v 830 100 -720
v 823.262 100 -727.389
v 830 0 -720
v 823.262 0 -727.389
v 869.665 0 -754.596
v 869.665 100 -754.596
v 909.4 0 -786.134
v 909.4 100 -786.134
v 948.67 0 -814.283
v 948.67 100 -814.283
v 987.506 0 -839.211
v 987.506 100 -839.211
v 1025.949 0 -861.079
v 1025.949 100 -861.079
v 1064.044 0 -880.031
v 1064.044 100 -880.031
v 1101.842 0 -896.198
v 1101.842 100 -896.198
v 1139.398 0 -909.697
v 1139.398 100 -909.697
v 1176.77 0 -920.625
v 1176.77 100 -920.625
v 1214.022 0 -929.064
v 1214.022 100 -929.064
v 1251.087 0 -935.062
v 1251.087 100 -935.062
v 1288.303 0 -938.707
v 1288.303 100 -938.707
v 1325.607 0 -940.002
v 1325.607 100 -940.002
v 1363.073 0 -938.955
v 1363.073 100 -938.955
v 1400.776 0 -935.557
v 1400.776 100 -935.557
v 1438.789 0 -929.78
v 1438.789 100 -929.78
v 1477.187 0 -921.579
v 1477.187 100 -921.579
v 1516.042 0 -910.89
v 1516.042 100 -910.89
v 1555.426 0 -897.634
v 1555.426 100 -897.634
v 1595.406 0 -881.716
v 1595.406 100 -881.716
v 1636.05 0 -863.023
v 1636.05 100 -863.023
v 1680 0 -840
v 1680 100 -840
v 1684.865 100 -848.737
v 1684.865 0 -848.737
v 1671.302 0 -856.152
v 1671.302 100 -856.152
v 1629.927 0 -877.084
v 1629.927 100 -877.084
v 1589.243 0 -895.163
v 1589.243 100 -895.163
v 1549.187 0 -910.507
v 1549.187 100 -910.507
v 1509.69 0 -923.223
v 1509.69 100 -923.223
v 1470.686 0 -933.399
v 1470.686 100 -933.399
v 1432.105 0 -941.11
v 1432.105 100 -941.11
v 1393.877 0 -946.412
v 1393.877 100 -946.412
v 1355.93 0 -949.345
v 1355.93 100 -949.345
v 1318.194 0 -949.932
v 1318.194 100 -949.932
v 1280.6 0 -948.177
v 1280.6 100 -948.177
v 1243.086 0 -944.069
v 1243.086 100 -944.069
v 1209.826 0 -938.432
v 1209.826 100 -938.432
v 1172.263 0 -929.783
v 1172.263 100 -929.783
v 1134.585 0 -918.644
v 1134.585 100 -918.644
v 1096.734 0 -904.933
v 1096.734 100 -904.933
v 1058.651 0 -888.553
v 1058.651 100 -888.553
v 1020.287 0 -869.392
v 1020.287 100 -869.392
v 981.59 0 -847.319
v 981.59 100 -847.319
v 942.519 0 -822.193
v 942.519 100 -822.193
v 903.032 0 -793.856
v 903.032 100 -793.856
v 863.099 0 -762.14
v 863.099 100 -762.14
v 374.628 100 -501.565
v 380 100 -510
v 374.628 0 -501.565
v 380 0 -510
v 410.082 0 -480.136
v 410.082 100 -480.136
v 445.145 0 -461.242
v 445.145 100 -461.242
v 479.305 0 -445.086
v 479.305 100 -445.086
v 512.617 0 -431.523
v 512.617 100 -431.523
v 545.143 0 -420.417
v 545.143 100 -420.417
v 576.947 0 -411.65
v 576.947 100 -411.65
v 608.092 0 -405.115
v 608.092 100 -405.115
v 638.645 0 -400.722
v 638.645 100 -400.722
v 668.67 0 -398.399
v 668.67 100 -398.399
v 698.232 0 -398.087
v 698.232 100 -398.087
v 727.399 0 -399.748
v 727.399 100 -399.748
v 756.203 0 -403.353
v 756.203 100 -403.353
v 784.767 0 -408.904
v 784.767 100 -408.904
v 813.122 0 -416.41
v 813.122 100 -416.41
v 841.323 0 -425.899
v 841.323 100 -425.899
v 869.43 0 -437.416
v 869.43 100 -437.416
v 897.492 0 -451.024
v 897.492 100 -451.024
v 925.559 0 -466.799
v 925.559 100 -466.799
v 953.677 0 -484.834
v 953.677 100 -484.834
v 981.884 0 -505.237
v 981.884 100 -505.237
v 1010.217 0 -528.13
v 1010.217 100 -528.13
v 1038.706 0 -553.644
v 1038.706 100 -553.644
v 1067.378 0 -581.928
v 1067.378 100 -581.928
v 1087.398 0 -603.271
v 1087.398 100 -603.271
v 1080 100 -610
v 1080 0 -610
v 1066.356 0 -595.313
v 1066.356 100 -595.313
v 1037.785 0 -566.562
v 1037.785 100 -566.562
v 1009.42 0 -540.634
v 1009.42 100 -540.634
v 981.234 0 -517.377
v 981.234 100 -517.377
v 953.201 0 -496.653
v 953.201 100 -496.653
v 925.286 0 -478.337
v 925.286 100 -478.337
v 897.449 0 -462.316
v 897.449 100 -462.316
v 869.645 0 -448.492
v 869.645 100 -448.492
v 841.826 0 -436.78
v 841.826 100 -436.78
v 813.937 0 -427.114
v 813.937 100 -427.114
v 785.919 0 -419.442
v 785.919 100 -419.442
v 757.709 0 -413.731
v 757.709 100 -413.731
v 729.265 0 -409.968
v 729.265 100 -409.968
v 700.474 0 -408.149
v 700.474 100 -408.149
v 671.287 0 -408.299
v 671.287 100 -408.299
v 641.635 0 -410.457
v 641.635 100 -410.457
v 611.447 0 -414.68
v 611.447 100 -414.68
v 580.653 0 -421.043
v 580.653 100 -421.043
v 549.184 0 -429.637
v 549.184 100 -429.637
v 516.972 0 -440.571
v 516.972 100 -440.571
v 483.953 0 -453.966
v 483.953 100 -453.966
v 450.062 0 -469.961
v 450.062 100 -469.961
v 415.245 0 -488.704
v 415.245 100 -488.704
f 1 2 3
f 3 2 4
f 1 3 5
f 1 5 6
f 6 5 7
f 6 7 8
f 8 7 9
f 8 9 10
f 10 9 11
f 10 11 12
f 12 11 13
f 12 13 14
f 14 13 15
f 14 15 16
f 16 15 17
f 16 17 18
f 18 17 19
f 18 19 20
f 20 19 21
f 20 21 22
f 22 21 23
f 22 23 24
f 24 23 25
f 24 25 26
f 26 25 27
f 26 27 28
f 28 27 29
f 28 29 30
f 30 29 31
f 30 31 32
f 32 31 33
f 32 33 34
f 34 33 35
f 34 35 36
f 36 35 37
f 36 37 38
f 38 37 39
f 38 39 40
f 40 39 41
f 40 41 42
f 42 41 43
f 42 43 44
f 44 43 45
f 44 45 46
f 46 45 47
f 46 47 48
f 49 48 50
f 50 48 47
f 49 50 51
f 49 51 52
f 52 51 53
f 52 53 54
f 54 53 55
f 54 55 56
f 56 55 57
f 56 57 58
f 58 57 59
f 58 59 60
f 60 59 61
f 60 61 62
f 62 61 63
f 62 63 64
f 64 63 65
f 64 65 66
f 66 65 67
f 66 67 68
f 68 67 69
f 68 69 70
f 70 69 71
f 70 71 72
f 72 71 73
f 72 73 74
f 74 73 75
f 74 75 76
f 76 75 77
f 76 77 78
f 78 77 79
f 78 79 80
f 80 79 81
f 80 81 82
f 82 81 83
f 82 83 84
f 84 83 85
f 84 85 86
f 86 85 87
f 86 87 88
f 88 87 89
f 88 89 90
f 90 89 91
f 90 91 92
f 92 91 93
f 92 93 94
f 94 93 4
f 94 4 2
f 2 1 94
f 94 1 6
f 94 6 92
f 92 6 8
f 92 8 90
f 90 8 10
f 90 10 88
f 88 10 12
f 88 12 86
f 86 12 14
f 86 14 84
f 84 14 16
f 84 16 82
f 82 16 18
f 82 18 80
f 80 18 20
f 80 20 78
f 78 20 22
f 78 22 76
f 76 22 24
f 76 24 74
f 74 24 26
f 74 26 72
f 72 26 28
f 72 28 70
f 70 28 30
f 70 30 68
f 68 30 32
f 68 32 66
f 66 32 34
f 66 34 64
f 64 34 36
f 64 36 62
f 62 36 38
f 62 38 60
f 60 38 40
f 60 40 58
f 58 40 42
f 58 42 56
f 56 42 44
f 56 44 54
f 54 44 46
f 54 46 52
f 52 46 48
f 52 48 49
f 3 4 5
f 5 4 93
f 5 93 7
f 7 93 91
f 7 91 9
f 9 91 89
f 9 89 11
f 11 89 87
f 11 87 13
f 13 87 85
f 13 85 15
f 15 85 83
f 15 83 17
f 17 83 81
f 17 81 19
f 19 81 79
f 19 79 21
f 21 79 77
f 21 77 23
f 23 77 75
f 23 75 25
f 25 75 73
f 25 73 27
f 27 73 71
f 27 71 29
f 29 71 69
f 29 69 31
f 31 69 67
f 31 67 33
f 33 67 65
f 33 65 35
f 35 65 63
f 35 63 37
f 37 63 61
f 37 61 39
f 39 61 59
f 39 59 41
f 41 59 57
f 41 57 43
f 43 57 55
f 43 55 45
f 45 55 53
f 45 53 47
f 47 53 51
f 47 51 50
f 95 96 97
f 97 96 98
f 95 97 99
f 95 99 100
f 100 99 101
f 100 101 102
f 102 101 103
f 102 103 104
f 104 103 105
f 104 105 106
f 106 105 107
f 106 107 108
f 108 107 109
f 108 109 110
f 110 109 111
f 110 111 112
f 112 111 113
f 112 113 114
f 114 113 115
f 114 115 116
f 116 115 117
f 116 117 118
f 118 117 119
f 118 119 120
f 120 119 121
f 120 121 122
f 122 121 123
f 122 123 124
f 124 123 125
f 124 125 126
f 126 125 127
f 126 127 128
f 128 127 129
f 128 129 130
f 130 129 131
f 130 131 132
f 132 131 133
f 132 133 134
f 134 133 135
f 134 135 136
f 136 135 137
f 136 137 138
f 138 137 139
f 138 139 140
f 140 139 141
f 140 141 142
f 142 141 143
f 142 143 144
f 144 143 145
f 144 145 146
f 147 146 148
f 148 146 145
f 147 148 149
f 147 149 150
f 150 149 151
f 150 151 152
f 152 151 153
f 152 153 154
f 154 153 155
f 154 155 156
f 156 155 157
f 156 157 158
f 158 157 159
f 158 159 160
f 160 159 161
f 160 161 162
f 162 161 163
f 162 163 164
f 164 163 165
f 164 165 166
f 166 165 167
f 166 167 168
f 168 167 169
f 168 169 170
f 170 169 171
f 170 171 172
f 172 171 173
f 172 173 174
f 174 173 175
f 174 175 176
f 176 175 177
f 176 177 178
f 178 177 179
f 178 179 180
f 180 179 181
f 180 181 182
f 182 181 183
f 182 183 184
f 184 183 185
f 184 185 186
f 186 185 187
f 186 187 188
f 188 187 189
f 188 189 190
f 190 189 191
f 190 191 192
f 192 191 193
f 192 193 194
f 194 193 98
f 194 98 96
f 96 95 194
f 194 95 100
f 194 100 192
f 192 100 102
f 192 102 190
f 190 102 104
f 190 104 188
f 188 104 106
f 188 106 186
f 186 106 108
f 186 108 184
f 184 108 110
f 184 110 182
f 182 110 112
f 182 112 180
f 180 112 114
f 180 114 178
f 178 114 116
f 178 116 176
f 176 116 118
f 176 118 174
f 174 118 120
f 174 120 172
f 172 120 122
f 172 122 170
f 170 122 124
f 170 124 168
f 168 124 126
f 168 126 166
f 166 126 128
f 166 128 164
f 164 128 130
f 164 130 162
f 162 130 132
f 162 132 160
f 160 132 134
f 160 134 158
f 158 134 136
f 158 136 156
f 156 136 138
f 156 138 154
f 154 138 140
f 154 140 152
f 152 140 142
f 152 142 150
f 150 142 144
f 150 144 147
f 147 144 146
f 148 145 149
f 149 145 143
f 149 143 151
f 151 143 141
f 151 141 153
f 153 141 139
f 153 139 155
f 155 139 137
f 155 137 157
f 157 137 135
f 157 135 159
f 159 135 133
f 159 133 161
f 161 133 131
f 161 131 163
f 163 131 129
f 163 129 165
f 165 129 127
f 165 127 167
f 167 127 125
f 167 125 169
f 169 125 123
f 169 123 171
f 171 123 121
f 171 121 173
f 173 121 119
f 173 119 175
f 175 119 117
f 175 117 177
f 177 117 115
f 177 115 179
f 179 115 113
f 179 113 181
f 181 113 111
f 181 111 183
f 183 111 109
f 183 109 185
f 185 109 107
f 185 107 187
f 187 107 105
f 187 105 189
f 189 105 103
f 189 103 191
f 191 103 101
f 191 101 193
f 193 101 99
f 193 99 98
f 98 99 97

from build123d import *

# Parameters (mm, degrees)
BOSS_EXTRUDE1_DEPTH   = 100
BOSS_EXTRUDE1_2_DEPTH = 100


with BuildPart() as part:
    # Sketch2 → Boss-Extrude1 (new body)
    with BuildSketch(Plane(origin=(0, 0, 0), x_dir=(1, 0, 0), z_dir=(0, 1, 0))):
        with BuildLine():
            Line((374.628296099, 501.56526247), (380, 510))
            add(Edge.make_bspline(
                [(380, 510), (765.648450942, 264.39789551), (1080, 610)],
                knots=[0, 0, 0, 1, 1, 1], degree=2))
            Line((1080, 610), (1087.397612531, 603.271305562))
            add(Edge.make_bspline(
                [(374.628296099, 501.56526247), (376.652675637, 500.276026448), (380.720758418, 497.707701121), (388.824052603, 492.681835618), (398.942317337, 486.574959139), (411.051084523, 479.537732392), (427.157724343, 470.539431247), (447.216750526, 460.014930368), (471.170377074, 448.544102414), (495.00718599, 438.233929118), (526.634300022, 426.037434745), (565.877106852, 413.704742254), (612.497099343, 403.587039941), (658.630861524, 398.171948108), (704.254057326, 397.476841105), (749.334719328, 401.511344411), (793.837699559, 410.274498162), (837.730363716, 423.754574124), (880.987503579, 441.931705096), (923.593867321, 464.782175641), (958.552261081, 487.699165006), (986.192007845, 508.347722138), (1006.759175925, 524.989578308), (1027.16474126, 542.78511594), (1044.035543065, 558.574716154), (1057.452856135, 571.782145535), (1067.475484342, 581.974522934), (1075.797092179, 590.710277834), (1082.429557002, 597.836888743), (1085.748674507, 601.458442056), (1087.397612531, 603.271305562)],
                knots=[0, 0, 0, 0, 0.0078125, 0.015625, 0.03125, 0.046875, 0.0625, 0.09375, 0.125, 0.15625, 0.1875, 0.25, 0.3125, 0.375, 0.4375, 0.5, 0.5625, 0.625, 0.6875, 0.75, 0.8125, 0.84375, 0.875, 0.90625, 0.9375, 0.953125, 0.96875, 0.984375, 0.9921875, 1, 1, 1, 1], degree=3))
        make_face()
    extrude(amount=BOSS_EXTRUDE1_DEPTH)


with BuildPart() as body_2:
    # Sketch2 → Boss-Extrude1 2 (new body)
    with BuildSketch(Plane(origin=(0, 0, 0), x_dir=(1, 0, 0), z_dir=(0, 1, 0))):
        with BuildLine():
            Line((830, 720), (823.262365385, 727.389470873))
            add(Edge.make_bspline(
                [(823.262365385, 727.389470873), (825.377734768, 729.318240365), (829.630063139, 733.168595845), (838.122239016, 740.750423493), (848.759608615, 750.046280333), (861.545710334, 760.897913291), (878.627388595, 774.966720203), (900.040277479, 791.800263599), (925.834434109, 810.796263839), (951.727686534, 828.586703778), (986.38483586, 850.698218528), (1029.956163663, 875.317057992), (1082.641689062, 900.013755812), (1135.722774479, 919.850002265), (1189.189830591, 934.811271327), (1243.027898668, 944.88492735), (1297.217585695, 950.062239621), (1351.737032302, 950.339907388), (1406.564505345, 945.720596556), (1461.680943023, 936.212298146), (1507.839912968, 924.224368531), (1544.899631683, 912.202195037), (1572.760050482, 901.971377888), (1600.685726671, 890.528013045), (1624.011214556, 879.982841334), (1642.704475786, 870.941814647), (1656.739924063, 863.859308904), (1668.452347873, 857.704094065), (1677.824680307, 852.632223036), (1682.524162963, 850.040099617), (1684.864495478, 848.737086685)],
                knots=[0, 0, 0, 0, 0.0078125, 0.015625, 0.03125, 0.046875, 0.0625, 0.09375, 0.125, 0.15625, 0.1875, 0.25, 0.3125, 0.375, 0.4375, 0.5, 0.5625, 0.625, 0.6875, 0.75, 0.8125, 0.84375, 0.875, 0.90625, 0.9375, 0.953125, 0.96875, 0.984375, 0.9921875, 1, 1, 1, 1], degree=3))
            Line((1684.864495478, 848.737086685), (1680, 840))
            add(Edge.make_bspline(
                [(830, 720), (1233.968809208, 1088.334117434), (1680, 840)],
                knots=[0, 0, 0, 1, 1, 1], degree=2))
        make_face()
    extrude(amount=BOSS_EXTRUDE1_2_DEPTH)


solid = Compound([part.part, body_2.part])
